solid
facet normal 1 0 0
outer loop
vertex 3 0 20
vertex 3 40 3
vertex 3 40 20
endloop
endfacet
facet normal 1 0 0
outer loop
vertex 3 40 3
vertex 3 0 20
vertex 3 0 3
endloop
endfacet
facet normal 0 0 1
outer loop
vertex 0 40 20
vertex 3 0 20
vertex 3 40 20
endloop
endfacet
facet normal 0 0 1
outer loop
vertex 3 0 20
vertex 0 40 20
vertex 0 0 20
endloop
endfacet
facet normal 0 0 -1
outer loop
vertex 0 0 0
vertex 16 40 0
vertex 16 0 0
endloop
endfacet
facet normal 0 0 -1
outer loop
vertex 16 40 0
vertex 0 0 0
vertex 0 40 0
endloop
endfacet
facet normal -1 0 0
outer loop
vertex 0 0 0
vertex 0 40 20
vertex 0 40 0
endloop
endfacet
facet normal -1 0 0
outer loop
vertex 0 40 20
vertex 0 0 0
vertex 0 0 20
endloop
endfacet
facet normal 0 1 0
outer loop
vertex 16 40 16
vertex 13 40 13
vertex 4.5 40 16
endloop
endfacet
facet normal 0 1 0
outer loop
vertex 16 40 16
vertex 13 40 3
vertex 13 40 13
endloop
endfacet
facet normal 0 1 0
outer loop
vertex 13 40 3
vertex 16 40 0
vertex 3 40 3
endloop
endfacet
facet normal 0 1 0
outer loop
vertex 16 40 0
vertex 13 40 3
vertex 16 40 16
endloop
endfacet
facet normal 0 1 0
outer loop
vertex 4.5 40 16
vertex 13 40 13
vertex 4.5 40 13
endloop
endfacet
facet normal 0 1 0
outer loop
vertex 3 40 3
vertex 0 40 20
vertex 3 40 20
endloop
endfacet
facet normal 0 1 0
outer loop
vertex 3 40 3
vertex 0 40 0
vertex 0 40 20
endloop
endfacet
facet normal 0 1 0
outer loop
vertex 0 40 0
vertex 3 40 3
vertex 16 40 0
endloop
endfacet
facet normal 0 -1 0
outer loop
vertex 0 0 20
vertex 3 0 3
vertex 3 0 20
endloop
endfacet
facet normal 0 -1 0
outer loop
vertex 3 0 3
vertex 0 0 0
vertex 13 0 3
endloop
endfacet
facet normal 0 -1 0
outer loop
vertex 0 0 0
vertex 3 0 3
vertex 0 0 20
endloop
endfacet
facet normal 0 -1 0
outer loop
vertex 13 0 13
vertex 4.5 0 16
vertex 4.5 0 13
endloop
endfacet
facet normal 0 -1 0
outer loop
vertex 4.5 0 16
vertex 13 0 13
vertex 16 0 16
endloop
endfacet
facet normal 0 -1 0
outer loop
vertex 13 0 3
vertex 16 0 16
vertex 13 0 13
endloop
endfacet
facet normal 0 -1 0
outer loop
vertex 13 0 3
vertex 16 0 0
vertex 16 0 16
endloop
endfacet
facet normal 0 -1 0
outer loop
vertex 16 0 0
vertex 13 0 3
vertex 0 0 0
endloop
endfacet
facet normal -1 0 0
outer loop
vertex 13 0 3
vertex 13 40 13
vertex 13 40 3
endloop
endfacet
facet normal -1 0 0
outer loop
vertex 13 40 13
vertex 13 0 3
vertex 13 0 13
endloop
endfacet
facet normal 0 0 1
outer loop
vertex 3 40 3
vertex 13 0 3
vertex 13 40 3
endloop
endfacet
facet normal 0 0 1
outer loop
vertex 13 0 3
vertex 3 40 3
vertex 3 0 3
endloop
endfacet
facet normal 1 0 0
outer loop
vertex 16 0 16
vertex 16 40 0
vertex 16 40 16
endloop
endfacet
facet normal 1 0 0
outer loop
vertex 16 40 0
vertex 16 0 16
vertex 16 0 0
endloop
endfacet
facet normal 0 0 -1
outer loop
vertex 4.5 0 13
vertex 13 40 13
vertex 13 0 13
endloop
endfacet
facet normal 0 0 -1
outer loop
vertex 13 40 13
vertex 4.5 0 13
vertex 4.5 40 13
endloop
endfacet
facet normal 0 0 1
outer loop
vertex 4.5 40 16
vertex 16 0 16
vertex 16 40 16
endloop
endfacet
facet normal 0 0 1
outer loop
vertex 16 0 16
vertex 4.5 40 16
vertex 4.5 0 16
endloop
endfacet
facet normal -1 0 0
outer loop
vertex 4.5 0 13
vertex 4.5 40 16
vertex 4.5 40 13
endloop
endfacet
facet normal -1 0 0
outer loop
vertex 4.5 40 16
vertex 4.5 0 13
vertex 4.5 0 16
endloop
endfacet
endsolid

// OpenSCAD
$fn = 50;
LENGTH = 40;
HEIGHT = 20;
WALL = 3;

INSIDE_HEIGHT = 10;
GAP = 1.5;

cube([WALL, LENGTH, HEIGHT]);
translate([WALL,0,0])cube([INSIDE_HEIGHT, LENGTH, WALL]);
translate([WALL+INSIDE_HEIGHT,0,0])cube([WALL, LENGTH, INSIDE_HEIGHT+WALL]);
translate([WALL+GAP,0,WALL+INSIDE_HEIGHT])cube([INSIDE_HEIGHT+GAP, LENGTH, WALL]);
